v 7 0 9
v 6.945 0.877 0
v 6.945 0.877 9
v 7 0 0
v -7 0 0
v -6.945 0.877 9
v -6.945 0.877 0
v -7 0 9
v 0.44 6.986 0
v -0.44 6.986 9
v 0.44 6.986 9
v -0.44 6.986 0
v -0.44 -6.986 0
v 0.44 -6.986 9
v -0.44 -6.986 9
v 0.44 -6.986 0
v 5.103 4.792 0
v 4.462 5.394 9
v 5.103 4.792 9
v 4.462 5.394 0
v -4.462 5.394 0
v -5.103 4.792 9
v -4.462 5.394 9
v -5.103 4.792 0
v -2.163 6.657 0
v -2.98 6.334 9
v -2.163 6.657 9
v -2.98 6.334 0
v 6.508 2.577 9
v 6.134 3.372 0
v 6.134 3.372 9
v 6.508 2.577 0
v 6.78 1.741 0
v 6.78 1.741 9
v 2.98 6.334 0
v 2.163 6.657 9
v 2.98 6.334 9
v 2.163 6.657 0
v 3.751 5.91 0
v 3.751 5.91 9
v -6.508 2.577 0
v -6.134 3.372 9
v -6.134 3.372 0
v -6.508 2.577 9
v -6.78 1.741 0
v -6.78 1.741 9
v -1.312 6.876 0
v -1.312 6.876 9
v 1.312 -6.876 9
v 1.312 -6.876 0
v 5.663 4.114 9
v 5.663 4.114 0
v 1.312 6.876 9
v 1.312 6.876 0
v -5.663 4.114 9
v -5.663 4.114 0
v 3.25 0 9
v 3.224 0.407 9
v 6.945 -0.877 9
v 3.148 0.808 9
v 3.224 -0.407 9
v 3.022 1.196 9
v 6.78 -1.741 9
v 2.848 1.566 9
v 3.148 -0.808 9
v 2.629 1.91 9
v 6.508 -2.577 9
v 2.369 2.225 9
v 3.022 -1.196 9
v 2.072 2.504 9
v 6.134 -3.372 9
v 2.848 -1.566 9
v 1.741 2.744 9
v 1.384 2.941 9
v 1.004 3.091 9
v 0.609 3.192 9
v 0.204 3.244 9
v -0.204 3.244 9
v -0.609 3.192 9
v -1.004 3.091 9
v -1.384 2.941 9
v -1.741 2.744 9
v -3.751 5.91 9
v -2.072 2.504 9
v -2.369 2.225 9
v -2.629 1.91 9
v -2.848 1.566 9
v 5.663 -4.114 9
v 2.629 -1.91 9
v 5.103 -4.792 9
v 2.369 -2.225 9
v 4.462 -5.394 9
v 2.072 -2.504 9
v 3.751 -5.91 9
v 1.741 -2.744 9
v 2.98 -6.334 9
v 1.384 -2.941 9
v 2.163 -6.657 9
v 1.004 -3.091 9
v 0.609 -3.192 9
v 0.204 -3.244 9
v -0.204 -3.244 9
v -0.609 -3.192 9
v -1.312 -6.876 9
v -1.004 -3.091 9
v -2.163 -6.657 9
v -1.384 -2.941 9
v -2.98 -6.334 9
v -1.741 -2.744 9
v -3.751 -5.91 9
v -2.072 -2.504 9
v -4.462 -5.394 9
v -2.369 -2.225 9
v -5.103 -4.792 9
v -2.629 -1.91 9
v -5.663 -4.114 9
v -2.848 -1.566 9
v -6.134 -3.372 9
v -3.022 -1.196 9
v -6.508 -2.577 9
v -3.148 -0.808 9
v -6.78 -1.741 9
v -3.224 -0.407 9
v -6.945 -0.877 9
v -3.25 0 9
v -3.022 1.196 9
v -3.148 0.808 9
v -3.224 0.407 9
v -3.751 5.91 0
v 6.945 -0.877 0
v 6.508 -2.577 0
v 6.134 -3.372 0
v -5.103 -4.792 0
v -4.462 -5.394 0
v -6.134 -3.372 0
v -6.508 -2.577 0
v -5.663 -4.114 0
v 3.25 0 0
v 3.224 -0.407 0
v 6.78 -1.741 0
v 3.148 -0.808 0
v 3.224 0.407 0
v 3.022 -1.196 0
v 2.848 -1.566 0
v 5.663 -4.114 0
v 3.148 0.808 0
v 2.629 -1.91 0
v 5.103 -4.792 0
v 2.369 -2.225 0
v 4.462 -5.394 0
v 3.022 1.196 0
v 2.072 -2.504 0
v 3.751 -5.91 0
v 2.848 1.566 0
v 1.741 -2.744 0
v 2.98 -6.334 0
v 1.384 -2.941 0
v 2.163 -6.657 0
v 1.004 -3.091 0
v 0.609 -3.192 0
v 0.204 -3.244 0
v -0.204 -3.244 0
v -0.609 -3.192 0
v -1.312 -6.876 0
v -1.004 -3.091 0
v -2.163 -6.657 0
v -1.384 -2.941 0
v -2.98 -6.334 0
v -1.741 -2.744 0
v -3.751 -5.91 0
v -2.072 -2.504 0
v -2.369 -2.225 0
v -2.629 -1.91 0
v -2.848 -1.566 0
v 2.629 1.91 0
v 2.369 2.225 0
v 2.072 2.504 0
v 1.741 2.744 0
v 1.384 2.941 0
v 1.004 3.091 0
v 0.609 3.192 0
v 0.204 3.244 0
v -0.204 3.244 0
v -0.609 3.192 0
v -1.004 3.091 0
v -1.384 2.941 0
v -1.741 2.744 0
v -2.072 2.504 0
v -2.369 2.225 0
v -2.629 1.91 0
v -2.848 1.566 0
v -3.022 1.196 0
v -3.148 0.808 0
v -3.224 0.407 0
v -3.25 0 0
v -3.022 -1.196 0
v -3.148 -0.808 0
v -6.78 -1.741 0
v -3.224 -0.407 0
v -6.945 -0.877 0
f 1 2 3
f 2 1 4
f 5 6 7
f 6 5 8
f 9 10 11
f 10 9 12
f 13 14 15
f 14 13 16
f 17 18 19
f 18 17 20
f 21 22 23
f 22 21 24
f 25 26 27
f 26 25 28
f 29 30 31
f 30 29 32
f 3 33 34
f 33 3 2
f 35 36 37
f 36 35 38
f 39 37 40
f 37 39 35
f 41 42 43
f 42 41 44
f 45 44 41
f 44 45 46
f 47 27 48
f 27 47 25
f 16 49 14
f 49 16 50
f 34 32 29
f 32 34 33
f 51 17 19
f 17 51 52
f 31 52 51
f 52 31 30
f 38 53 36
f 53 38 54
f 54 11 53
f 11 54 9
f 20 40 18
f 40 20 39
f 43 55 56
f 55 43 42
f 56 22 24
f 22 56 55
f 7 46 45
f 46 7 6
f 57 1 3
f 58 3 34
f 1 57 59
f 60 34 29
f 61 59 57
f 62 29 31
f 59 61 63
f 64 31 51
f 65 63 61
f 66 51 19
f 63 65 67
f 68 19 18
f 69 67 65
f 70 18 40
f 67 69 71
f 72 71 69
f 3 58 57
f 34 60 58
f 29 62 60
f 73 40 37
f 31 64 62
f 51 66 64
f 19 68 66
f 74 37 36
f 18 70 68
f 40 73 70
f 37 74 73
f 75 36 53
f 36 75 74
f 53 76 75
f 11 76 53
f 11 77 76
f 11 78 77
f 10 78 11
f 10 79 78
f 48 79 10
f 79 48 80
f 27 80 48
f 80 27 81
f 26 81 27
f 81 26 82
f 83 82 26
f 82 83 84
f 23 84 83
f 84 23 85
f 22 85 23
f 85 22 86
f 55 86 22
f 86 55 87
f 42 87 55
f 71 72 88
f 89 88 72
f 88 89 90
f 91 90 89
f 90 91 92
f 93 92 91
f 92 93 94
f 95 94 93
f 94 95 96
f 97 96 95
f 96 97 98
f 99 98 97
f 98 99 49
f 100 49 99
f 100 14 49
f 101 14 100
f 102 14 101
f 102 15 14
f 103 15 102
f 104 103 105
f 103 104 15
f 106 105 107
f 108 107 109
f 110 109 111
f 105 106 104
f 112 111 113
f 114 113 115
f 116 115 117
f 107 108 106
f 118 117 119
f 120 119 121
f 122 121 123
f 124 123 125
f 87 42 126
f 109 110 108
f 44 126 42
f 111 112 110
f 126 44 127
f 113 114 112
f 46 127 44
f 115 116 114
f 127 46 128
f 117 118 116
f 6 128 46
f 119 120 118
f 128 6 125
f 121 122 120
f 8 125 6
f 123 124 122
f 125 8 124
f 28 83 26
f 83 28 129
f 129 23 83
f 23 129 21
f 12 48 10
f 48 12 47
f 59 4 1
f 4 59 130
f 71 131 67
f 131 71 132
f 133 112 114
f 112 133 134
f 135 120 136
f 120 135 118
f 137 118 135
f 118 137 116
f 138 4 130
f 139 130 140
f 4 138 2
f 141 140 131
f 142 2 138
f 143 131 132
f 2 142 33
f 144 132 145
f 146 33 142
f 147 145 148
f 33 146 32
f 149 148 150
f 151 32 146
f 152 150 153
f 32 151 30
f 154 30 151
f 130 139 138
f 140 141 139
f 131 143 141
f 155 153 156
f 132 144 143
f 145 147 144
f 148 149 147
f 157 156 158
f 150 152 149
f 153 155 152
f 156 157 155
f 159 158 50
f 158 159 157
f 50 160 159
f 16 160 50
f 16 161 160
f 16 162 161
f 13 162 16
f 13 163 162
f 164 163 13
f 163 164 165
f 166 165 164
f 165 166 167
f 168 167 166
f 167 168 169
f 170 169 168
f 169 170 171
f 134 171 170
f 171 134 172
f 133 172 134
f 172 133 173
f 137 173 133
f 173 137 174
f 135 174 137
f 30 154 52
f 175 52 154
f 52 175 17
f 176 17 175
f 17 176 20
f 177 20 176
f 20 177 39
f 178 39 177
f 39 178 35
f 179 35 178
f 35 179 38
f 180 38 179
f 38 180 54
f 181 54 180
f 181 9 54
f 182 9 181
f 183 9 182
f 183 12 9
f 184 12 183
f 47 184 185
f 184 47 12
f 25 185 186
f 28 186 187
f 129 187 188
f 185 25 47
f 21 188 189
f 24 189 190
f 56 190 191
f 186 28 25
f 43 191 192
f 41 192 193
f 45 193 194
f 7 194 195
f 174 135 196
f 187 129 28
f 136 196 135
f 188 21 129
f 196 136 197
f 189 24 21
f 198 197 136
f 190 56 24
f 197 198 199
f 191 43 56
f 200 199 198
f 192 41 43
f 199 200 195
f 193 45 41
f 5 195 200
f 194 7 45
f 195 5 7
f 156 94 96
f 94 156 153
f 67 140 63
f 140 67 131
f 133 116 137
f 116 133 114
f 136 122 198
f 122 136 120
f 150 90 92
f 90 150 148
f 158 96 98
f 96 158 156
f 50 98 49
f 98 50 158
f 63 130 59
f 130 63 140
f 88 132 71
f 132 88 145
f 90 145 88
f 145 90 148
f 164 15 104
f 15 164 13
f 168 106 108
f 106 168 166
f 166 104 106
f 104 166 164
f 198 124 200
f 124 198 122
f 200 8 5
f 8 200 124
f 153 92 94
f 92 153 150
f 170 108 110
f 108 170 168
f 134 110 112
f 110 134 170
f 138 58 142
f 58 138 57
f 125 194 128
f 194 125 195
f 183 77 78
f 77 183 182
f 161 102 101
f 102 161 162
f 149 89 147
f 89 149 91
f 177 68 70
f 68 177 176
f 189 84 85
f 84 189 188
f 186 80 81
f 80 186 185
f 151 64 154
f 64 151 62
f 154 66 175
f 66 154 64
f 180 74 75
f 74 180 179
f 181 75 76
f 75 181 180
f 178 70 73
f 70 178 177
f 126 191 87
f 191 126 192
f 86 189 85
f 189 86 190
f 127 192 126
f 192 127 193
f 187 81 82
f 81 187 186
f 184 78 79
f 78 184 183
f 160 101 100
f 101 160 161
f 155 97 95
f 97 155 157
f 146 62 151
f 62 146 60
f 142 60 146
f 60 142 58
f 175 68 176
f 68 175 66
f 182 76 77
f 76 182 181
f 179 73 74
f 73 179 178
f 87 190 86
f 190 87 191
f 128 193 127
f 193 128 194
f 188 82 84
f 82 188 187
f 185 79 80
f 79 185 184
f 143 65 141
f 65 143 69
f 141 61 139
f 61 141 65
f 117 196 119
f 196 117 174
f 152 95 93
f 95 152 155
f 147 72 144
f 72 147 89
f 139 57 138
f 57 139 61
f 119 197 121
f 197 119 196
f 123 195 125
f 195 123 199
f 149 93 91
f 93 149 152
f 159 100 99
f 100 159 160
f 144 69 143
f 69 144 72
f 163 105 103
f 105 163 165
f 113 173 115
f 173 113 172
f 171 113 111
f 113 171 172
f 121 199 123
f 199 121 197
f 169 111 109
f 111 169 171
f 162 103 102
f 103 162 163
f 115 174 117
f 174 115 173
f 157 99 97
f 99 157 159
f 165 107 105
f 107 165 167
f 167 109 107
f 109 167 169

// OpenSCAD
$fn = 50;


difference() {
	union() {
		translate(v = [0, 0, 0]) {
			rotate(a = [0, 0, 0]) {
				cylinder(h = 9, r = 7.0000000000);
			}
		}
	}
	union() {
		translate(v = [0.0000000000, 0.0000000000, 0]) {
			rotate(a = [0, 0, 0]) {
				translate(v = [0, 0, -50]) {
					rotate(a = [0, 0, 0]) {
						cylinder(h = 100, r = 3.2500000000);
					}
				}
			}
		}
	}
}
